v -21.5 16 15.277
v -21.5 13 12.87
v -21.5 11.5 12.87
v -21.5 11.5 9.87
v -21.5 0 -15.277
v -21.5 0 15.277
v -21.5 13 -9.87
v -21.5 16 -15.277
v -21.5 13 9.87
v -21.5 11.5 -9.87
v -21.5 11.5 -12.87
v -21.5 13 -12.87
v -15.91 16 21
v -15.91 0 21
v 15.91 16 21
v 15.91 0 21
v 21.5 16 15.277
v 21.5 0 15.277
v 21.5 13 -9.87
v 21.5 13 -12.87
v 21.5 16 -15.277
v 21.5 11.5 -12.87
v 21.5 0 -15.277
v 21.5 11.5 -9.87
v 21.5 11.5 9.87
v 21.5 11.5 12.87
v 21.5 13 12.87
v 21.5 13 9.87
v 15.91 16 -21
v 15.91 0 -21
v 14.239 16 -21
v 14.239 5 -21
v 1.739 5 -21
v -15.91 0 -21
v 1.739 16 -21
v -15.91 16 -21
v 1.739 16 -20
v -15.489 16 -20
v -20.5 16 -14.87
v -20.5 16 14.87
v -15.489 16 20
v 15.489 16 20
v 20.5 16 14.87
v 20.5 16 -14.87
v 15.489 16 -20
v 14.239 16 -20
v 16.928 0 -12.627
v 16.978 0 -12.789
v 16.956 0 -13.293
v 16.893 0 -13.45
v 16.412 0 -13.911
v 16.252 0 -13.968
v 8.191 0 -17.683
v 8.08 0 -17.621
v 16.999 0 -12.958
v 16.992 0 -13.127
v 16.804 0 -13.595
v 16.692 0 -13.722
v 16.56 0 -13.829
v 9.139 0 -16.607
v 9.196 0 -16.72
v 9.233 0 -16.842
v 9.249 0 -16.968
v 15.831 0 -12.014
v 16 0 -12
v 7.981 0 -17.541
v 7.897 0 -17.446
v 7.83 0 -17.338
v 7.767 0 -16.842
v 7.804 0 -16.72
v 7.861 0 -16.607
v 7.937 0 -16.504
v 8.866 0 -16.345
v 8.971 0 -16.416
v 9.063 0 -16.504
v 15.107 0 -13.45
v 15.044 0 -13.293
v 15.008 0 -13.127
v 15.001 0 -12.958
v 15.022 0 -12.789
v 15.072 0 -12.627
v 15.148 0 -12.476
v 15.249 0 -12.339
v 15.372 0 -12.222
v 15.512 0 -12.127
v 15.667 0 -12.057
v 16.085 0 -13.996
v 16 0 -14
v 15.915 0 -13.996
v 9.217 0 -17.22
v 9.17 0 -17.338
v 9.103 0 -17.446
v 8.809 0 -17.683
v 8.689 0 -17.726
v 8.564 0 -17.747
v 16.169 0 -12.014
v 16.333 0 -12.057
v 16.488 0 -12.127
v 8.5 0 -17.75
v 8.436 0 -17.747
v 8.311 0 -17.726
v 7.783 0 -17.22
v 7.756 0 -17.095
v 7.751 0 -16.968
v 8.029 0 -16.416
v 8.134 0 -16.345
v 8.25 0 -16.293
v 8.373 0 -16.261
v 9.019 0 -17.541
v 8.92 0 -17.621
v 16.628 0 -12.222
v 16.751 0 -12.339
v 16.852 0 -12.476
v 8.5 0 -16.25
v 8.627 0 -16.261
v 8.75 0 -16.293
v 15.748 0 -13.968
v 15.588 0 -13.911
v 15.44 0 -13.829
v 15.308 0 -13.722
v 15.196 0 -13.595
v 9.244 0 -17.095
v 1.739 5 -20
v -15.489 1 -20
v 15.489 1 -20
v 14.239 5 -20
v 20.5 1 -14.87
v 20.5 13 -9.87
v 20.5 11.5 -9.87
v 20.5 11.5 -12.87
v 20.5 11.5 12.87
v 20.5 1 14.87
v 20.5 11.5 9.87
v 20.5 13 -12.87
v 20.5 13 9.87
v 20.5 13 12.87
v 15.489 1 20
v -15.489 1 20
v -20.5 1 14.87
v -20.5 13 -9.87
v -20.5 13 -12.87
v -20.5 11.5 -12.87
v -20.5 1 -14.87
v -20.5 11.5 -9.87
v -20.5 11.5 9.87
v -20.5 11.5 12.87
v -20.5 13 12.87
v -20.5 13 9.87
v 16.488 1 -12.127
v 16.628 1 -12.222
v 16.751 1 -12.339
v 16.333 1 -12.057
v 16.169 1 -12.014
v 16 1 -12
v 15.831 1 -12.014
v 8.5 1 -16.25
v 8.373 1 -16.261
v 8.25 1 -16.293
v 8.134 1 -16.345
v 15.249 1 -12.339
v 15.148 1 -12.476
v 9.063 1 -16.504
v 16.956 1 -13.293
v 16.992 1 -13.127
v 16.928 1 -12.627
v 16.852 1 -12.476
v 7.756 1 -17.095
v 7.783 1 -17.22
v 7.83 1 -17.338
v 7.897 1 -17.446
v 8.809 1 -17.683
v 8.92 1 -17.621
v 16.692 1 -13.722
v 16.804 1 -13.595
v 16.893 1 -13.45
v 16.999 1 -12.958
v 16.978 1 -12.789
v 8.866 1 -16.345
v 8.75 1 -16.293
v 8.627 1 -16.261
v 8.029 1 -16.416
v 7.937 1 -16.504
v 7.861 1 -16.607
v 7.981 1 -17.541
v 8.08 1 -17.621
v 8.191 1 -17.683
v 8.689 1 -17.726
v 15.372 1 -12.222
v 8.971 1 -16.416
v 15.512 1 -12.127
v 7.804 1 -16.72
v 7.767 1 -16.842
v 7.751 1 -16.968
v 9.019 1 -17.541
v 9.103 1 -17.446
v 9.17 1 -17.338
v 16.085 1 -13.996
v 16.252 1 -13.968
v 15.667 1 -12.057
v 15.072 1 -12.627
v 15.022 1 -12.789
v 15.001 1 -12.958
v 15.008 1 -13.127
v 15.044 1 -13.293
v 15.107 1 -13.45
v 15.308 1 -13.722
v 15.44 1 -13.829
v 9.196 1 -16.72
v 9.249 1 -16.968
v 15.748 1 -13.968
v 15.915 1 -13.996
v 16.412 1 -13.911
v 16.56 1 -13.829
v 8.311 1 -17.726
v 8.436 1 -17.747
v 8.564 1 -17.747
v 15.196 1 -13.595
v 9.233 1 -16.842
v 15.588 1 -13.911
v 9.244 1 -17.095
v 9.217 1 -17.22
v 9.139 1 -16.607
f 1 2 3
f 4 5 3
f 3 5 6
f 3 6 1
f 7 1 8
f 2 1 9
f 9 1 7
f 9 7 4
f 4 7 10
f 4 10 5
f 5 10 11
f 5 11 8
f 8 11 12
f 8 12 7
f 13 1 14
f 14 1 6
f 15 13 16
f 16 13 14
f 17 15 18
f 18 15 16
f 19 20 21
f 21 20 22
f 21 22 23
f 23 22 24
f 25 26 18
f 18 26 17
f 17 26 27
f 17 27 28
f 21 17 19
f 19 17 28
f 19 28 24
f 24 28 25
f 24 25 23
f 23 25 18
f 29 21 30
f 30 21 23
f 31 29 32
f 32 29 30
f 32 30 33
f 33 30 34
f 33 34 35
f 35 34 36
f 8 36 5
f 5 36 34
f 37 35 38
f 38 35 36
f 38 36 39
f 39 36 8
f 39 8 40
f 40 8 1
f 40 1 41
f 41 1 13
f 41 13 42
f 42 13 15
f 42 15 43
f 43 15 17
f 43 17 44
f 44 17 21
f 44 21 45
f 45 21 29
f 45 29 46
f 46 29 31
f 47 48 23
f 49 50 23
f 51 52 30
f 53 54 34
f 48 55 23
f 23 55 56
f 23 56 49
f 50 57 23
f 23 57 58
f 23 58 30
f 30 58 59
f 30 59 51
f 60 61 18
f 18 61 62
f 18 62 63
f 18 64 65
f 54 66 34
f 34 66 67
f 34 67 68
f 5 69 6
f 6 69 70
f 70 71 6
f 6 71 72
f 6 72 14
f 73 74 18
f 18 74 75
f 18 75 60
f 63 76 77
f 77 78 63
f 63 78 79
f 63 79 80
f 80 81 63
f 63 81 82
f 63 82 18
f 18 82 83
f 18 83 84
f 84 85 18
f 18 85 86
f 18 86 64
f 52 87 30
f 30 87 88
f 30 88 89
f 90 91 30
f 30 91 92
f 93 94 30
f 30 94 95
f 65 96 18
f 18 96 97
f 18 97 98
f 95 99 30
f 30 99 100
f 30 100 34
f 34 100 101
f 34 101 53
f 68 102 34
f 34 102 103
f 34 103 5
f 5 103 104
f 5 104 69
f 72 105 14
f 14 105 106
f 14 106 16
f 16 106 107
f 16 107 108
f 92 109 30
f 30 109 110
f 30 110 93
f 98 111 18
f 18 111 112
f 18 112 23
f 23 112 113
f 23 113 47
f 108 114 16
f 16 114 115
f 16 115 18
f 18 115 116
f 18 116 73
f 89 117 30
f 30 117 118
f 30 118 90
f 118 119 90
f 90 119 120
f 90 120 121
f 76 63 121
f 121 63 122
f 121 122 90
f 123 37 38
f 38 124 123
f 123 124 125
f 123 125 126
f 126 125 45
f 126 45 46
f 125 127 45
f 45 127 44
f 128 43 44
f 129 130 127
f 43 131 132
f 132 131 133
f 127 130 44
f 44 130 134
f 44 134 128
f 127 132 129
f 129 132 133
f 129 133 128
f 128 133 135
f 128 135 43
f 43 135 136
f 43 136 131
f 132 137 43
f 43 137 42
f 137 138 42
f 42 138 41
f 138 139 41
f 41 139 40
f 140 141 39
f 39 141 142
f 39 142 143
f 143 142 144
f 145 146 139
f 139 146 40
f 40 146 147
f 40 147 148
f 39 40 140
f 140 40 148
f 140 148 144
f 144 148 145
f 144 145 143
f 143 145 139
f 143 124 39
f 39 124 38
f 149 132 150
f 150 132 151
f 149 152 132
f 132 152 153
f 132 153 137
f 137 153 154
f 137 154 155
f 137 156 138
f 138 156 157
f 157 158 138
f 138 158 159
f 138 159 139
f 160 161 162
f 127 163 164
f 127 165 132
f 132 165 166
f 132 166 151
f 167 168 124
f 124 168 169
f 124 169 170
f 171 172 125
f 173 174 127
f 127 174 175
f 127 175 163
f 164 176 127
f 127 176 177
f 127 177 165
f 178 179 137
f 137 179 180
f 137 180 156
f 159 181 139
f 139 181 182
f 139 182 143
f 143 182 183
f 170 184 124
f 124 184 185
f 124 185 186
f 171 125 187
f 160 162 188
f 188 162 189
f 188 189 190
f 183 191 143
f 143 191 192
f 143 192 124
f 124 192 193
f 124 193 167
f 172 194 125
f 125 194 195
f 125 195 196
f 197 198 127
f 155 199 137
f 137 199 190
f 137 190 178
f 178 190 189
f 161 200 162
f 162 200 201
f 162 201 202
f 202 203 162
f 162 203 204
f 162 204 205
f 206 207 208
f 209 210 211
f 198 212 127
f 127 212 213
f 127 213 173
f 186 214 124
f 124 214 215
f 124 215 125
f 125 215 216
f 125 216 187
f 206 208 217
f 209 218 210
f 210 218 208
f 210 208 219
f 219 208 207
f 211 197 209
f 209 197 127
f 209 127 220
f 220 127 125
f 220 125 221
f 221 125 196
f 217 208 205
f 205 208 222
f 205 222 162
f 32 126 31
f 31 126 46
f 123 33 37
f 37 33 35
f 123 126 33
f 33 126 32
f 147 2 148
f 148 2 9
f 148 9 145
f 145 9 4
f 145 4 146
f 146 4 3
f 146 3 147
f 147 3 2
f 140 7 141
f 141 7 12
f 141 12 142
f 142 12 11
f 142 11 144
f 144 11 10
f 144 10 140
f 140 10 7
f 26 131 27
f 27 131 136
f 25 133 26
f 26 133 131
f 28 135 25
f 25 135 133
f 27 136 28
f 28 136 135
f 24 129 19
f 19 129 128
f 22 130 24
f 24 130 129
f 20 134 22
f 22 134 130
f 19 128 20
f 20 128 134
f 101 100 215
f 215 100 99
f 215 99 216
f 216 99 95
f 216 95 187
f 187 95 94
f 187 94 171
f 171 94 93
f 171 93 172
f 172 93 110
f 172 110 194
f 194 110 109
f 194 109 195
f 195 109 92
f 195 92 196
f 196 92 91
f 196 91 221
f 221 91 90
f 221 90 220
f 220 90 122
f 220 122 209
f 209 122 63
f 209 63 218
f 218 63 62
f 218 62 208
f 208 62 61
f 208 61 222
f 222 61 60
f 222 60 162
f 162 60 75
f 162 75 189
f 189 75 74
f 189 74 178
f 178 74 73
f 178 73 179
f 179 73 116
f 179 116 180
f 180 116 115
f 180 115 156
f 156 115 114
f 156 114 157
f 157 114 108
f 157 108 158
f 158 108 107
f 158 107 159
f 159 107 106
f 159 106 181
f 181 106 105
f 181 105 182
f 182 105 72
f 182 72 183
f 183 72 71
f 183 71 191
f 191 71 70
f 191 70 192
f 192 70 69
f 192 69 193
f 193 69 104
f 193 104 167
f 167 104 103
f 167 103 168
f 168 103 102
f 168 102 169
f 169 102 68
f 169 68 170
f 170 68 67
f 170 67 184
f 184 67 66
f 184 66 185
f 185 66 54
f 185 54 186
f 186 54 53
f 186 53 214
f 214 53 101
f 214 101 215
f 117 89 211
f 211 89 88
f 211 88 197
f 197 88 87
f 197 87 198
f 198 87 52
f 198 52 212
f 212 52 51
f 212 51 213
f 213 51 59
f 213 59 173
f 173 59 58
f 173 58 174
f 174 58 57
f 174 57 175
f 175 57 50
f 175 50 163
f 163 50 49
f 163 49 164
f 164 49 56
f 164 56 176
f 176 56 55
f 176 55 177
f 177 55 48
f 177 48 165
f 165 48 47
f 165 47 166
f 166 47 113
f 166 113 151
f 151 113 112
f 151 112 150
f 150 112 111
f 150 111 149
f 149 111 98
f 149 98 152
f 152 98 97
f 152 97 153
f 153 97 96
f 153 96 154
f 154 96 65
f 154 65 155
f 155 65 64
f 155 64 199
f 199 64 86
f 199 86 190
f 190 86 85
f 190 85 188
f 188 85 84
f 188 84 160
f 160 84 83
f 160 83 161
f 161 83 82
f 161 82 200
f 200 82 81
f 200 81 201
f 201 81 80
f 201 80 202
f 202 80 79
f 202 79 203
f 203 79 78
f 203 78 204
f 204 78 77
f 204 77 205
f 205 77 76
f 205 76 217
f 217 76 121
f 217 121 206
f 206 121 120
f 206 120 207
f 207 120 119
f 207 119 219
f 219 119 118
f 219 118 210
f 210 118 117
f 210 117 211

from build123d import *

# Parameters (mm, degrees)
BOSS_EXTRUDE1_DEPTH     = 16
CUT_EXTRUDE1_DEPTH      = 15
SKETCH3_R               = 1.002930515
SKETCH3_W               = 12.5
SKETCH3_H               = 1
CUT_EXTRUDE2_DEPTH      = 11
SKETCH4_W               = 3
SKETCH4_H               = 1.5
CUT_EXTRUDE3_DEPTH      = 1
CUT_EXTRUDE3_DEPTH_BACK = 44
SKETCH5_R               = 1
SKETCH5_R_2             = 0.75
CUT_EXTRUDE4_DEPTH      = 1


with BuildPart() as part:
    # Sketch1 → Boss-Extrude1 (new body)
    with BuildSketch(Plane(origin=(0, 0, 0), x_dir=(1, 0, 0), z_dir=(0, 1, 0))):
        Polygon((-21.5, 15.276990566), (-15.910083809, 21), (15.910083809, 21), (21.5, 15.276990566), (21.5, -15.276990566), (15.910083809, -21), (-15.910083809, -21), (-21.5, -15.276990566), align=None)
    extrude(amount=BOSS_EXTRUDE1_DEPTH)

    # Sketch2 → Cut-Extrude1 (cut)
    with BuildSketch(Plane(origin=(0, 16, 0), x_dir=(1, 0, 0), z_dir=(0, 1, 0))):
        Polygon((-15.488962048, 20), (-20.5, 14.869651621), (-20.5, -14.869651621), (-15.488962048, -20), (15.488962048, -20), (20.5, -14.869651621), (20.5, 14.869651621), (15.488962048, 20), align=None)
    extrude(amount=-CUT_EXTRUDE1_DEPTH, mode=Mode.SUBTRACT)

    # Sketch3 → Cut-Extrude2 (cut)
    with BuildSketch(Plane(origin=(0, 16, 0), x_dir=(1, 0, 0), z_dir=(0, 1, 0))):
        with Locations((16.5, 12.271619794)):
            Circle(SKETCH3_R)
        with Locations((7.988962048, 20.5)):
            Rectangle(SKETCH3_W, SKETCH3_H)
    extrude(amount=-CUT_EXTRUDE2_DEPTH, mode=Mode.SUBTRACT)

    # Sketch4 → Cut-Extrude3 (cut, two sides)
    with BuildSketch(Plane.ZY.offset(21.5)) as cut_extrude3_sk:
        with Locations((-11.369651621, 12.25)):
            Rectangle(SKETCH4_W, SKETCH4_H)
        with Locations((11.369651621, 12.25)):
            Rectangle(SKETCH4_W, SKETCH4_H)
    extrude(amount=CUT_EXTRUDE3_DEPTH, mode=Mode.SUBTRACT)
    extrude(cut_extrude3_sk.sketch, amount=-CUT_EXTRUDE3_DEPTH_BACK, mode=Mode.SUBTRACT)

    # Sketch5 → Cut-Extrude4 (cut)
    with BuildSketch(Plane(origin=(0, 1, 0), x_dir=(1, 0, 0), z_dir=(0, 1, 0))):
        with Locations((16, 13)):
            Circle(SKETCH5_R)
        with Locations((8.5, 17)):
            Circle(SKETCH5_R_2)
    extrude(amount=-CUT_EXTRUDE4_DEPTH, mode=Mode.SUBTRACT)


solid = part.part
